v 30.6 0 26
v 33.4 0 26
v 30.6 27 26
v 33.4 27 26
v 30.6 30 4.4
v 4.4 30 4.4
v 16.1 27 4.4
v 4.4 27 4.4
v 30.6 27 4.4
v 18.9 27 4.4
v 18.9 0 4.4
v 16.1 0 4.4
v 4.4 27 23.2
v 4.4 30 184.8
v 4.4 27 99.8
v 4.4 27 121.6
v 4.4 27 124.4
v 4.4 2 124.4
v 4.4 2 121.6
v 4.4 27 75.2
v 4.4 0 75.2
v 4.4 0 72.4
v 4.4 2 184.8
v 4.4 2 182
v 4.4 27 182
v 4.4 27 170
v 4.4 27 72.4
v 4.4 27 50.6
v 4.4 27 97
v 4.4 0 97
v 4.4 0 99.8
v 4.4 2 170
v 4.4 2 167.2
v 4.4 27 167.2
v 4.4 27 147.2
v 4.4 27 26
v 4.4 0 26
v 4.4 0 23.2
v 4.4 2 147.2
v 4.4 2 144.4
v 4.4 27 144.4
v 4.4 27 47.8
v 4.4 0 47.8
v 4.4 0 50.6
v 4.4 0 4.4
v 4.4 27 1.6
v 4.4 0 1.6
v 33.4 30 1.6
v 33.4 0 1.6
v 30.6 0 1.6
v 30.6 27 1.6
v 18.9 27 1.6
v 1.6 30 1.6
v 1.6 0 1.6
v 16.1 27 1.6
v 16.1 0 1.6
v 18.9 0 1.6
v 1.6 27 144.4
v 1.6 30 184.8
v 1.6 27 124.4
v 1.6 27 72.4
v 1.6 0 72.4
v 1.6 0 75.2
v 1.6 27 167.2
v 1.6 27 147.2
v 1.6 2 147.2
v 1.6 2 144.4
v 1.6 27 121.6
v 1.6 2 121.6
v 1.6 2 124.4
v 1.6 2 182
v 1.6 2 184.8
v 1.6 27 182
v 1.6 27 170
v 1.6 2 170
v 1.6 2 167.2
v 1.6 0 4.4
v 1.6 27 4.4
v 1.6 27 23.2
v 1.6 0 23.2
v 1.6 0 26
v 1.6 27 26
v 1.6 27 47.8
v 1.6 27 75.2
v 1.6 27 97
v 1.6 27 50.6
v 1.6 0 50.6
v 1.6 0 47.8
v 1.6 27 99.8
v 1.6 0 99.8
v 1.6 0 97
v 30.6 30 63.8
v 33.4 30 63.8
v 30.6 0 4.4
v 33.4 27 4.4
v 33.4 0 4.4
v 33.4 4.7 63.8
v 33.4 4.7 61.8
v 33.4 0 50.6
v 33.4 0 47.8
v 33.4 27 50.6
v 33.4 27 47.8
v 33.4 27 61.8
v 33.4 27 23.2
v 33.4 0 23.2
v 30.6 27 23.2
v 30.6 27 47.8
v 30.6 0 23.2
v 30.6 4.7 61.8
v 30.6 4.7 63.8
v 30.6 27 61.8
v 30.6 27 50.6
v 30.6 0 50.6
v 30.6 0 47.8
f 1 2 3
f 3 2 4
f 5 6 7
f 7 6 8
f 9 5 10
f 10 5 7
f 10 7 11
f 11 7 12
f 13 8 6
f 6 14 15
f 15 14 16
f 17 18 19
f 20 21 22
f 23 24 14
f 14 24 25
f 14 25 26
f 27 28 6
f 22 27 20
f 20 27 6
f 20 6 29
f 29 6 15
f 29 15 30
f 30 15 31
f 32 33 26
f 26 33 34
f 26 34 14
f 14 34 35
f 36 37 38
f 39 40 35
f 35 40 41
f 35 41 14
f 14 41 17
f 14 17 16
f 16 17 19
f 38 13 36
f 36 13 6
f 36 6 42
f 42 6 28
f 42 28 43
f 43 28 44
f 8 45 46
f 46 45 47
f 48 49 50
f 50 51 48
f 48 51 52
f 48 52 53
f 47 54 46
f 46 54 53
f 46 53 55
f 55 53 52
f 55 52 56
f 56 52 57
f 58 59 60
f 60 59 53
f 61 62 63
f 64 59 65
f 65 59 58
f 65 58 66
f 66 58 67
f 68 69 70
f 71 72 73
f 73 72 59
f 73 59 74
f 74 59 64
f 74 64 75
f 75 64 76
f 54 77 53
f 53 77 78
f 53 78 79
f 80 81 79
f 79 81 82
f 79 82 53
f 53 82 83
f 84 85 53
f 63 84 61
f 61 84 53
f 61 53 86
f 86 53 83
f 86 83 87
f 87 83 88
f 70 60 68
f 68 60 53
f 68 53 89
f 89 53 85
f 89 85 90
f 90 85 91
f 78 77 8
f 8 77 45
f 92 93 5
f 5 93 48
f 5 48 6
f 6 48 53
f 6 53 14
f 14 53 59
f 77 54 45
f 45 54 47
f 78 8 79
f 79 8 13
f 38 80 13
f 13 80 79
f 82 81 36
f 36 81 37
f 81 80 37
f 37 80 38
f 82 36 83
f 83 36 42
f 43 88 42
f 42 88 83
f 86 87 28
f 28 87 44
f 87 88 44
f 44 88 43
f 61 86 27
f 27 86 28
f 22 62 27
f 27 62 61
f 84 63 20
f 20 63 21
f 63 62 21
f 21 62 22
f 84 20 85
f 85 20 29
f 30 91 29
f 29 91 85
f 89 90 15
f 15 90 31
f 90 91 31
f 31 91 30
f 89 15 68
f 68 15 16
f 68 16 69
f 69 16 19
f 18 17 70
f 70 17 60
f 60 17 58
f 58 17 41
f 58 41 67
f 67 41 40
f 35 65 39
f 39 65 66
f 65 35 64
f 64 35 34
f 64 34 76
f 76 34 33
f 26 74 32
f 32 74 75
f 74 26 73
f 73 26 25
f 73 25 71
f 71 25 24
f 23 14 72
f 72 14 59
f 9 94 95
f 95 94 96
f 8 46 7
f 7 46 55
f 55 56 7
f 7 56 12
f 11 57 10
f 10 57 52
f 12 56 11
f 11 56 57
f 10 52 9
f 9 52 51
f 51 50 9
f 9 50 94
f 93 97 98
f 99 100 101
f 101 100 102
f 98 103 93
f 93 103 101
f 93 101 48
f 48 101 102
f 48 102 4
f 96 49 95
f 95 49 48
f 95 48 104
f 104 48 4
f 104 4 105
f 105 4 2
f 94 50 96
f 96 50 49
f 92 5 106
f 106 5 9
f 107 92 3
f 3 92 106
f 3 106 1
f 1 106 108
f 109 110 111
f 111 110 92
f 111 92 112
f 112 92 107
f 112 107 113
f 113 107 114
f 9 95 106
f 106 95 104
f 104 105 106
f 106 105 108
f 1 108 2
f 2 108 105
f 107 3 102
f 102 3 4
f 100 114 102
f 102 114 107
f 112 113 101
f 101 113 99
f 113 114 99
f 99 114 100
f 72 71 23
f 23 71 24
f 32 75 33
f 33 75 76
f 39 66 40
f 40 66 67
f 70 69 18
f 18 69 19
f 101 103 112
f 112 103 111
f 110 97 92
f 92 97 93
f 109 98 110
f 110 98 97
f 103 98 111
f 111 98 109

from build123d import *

# Parameters (mm, degrees)
SKETCH_1_W            = 2.8
SKETCH_1_H            = 2.8
EXTRUDE_1_DEPTH       = 30
EXTRUDE_1_2_DEPTH     = 30
EXTRUDE_1_3_DEPTH     = 30
EXTRUDE_1_4_DEPTH     = 30
EXTRUDE_1_5_DEPTH     = 30
EXTRUDE_1_6_DEPTH     = 30
EXTRUDE_1_7_DEPTH     = 30
EXTRUDE_1_8_DEPTH     = 30
EXTRUDE_1_9_DEPTH     = 30
EXTRUDE_1_10_DEPTH    = 30
EXTRUDE_1_11_DEPTH    = 30
EXTRUDE_1_12_DEPTH    = 30
EXTRUDE_1_13_DEPTH    = 30
EXTRUDE_START         = 27
EXTRUDE_2_OUTLINE_W   = 2.8
EXTRUDE_2_OUTLINE_H   = 18.8
EXTRUDE_2_OUTLINE_W_2 = 11.7
EXTRUDE_2_OUTLINE_H_2 = 2.8
EXTRUDE_2_OUTLINE_H_3 = 21.8
EXTRUDE_2_OUTLINE_H_4 = 20
EXTRUDE_2_OUTLINE_H_5 = 12
EXTRUDE_2_DEPTH       = 3
SKETCH_2_W            = 63.2
SKETCH_2_H            = 2
CUT_EXTRUDE_1_DEPTH   = 190.900710899
SKETCH_3_W            = 11.2
SKETCH_3_H            = 3
EXTRUDE_3_DEPTH       = 2.8


# Read off the part's stored shape, not the designer's step: 凸台-拉伸2
with BuildPart() as part:
    # 草图1 → 凸台-拉伸1 (new body)
    with BuildSketch(Plane(origin=(0, 0, 0), x_dir=(1, 0, 0), z_dir=(0, 1, 0))):
        with Locations((3, -3)):
            Rectangle(SKETCH_1_W, SKETCH_1_H)
    extrude(amount=EXTRUDE_1_DEPTH)



with BuildPart() as body_2:
    # 草图1 → Extrude 1 2 (new body)
    with BuildSketch(Plane(origin=(0, 0, 0), x_dir=(1, 0, 0), z_dir=(0, 1, 0))):
        with Locations((17.5, -3)):
            Rectangle(SKETCH_1_W, SKETCH_1_H)
    extrude(amount=EXTRUDE_1_2_DEPTH)


with BuildPart() as body_3:
    # 草图1 → Extrude 1 3 (new body)
    with BuildSketch(Plane(origin=(0, 0, 0), x_dir=(1, 0, 0), z_dir=(0, 1, 0))):
        with Locations((32, -3)):
            Rectangle(SKETCH_1_W, SKETCH_1_H)
    extrude(amount=EXTRUDE_1_3_DEPTH)


with BuildPart() as body_4:
    # 草图1 → Extrude 1 4 (new body)
    with BuildSketch(Plane(origin=(0, 0, 0), x_dir=(1, 0, 0), z_dir=(0, 1, 0))):
        with Locations((3, -24.6)):
            Rectangle(SKETCH_1_W, SKETCH_1_H)
    extrude(amount=EXTRUDE_1_4_DEPTH)


with BuildPart() as body_5:
    # 草图1 → Extrude 1 5 (new body)
    with BuildSketch(Plane(origin=(0, 0, 0), x_dir=(1, 0, 0), z_dir=(0, 1, 0))):
        with Locations((3, -49.2)):
            Rectangle(SKETCH_1_W, SKETCH_1_H)
    extrude(amount=EXTRUDE_1_5_DEPTH)


with BuildPart() as body_6:
    # 草图1 → Extrude 1 6 (new body)
    with BuildSketch(Plane(origin=(0, 0, 0), x_dir=(1, 0, 0), z_dir=(0, 1, 0))):
        with Locations((3, -73.8)):
            Rectangle(SKETCH_1_W, SKETCH_1_H)
    extrude(amount=EXTRUDE_1_6_DEPTH)


with BuildPart() as body_7:
    # 草图1 → Extrude 1 7 (new body)
    with BuildSketch(Plane(origin=(0, 0, 0), x_dir=(1, 0, 0), z_dir=(0, 1, 0))):
        with Locations((3, -98.4)):
            Rectangle(SKETCH_1_W, SKETCH_1_H)
    extrude(amount=EXTRUDE_1_7_DEPTH)


with BuildPart() as body_8:
    # 草图1 → Extrude 1 8 (new body)
    with BuildSketch(Plane(origin=(0, 0, 0), x_dir=(1, 0, 0), z_dir=(0, 1, 0))):
        with Locations((32, -49.2)):
            Rectangle(SKETCH_1_W, SKETCH_1_H)
    extrude(amount=EXTRUDE_1_8_DEPTH)


with BuildPart() as body_9:
    # 草图1 → Extrude 1 9 (new body)
    with BuildSketch(Plane(origin=(0, 0, 0), x_dir=(1, 0, 0), z_dir=(0, 1, 0))):
        with Locations((32, -24.6)):
            Rectangle(SKETCH_1_W, SKETCH_1_H)
    extrude(amount=EXTRUDE_1_9_DEPTH)


with BuildPart() as body_10:
    # 草图1 → Extrude 1 10 (new body)
    with BuildSketch(Plane(origin=(0, 0, 0), x_dir=(1, 0, 0), z_dir=(0, 1, 0))):
        with Locations((3, -123)):
            Rectangle(SKETCH_1_W, SKETCH_1_H)
    extrude(amount=EXTRUDE_1_10_DEPTH)


with BuildPart() as body_11:
    # 草图1 → Extrude 1 11 (new body)
    with BuildSketch(Plane(origin=(0, 0, 0), x_dir=(1, 0, 0), z_dir=(0, 1, 0))):
        with Locations((3, -145.8)):
            Rectangle(SKETCH_1_W, SKETCH_1_H)
    extrude(amount=EXTRUDE_1_11_DEPTH)


with BuildPart() as body_12:
    # 草图1 → Extrude 1 12 (new body)
    with BuildSketch(Plane(origin=(0, 0, 0), x_dir=(1, 0, 0), z_dir=(0, 1, 0))):
        with Locations((3, -168.6)):
            Rectangle(SKETCH_1_W, SKETCH_1_H)
    extrude(amount=EXTRUDE_1_12_DEPTH)


with BuildPart() as body_13:
    # 草图1 → Extrude 1 13 (new body)
    with BuildSketch(Plane(origin=(0, 0, 0), x_dir=(1, 0, 0), z_dir=(0, 1, 0))):
        with Locations((3, -183.4)):
            Rectangle(SKETCH_1_W, SKETCH_1_H)
    extrude(amount=EXTRUDE_1_13_DEPTH)


with BuildPart() as part_1:
    add(part.part)

    add(body_2.part)  # 凸台-拉伸2 merges body 2

    add(body_3.part)  # 凸台-拉伸2 merges body 3

    add(body_4.part)  # 凸台-拉伸2 merges body 4

    add(body_5.part)  # 凸台-拉伸2 merges body 5

    add(body_6.part)  # 凸台-拉伸2 merges body 6

    add(body_7.part)  # 凸台-拉伸2 merges body 7

    add(body_8.part)  # 凸台-拉伸2 merges body 8

    add(body_9.part)  # 凸台-拉伸2 merges body 9

    add(body_10.part)  # 凸台-拉伸2 merges body 10

    add(body_11.part)  # 凸台-拉伸2 merges body 11

    add(body_12.part)  # 凸台-拉伸2 merges body 12

    add(body_13.part)  # 凸台-拉伸2 merges body 13
    # 凸台-拉伸2 outline → 凸台-拉伸2 (add)
    with BuildSketch(Plane(origin=(0, 0, 0), x_dir=(1, 0, 0), z_dir=(0, 1, 0)).offset(EXTRUDE_START)):
        with Locations((32, -13.8)):
            Rectangle(EXTRUDE_2_OUTLINE_W, EXTRUDE_2_OUTLINE_H)
        with Locations((24.75, -3)):
            Rectangle(EXTRUDE_2_OUTLINE_W_2, EXTRUDE_2_OUTLINE_H_2)
        with Locations((10.25, -3)):
            Rectangle(EXTRUDE_2_OUTLINE_W_2, EXTRUDE_2_OUTLINE_H_2)
        with Locations((32, -36.9)):
            Rectangle(EXTRUDE_2_OUTLINE_W, EXTRUDE_2_OUTLINE_H_3)
        with Locations((3, -13.8)):
            Rectangle(EXTRUDE_2_OUTLINE_W, EXTRUDE_2_OUTLINE_H)
        with Locations((3, -36.9)):
            Rectangle(EXTRUDE_2_OUTLINE_W, EXTRUDE_2_OUTLINE_H_3)
        with Locations((3, -61.5)):
            Rectangle(EXTRUDE_2_OUTLINE_W, EXTRUDE_2_OUTLINE_H_3)
        with Locations((3, -86.1)):
            Rectangle(EXTRUDE_2_OUTLINE_W, EXTRUDE_2_OUTLINE_H_3)
        with Locations((3, -110.7)):
            Rectangle(EXTRUDE_2_OUTLINE_W, EXTRUDE_2_OUTLINE_H_3)
        with Locations((3, -134.4)):
            Rectangle(EXTRUDE_2_OUTLINE_W, EXTRUDE_2_OUTLINE_H_4)
        with Locations((3, -157.2)):
            Rectangle(EXTRUDE_2_OUTLINE_W, EXTRUDE_2_OUTLINE_H_4)
        with Locations((3, -176)):
            Rectangle(EXTRUDE_2_OUTLINE_W, EXTRUDE_2_OUTLINE_H_5)
    extrude(amount=EXTRUDE_2_DEPTH)

    # 草图2 → 切除-拉伸1 (cut, through all)
    with BuildSketch(Plane.ZY.offset(-1.6)):
        with Locations((153.2, 1)):
            Rectangle(SKETCH_2_W, SKETCH_2_H)
    extrude(amount=-CUT_EXTRUDE_1_DEPTH, mode=Mode.SUBTRACT)

    # 草图3 → 凸台-拉伸3 (add)
    with BuildSketch(Plane(origin=(33.4, 0, 0), x_dir=(0, 0, -1), z_dir=(1, 0, 0))):
        Polygon((-63.8, 4.7), (-61.8, 4.7), (-61.8, 27), (-61.8, 30), (-63.8, 30), align=None)
        with Locations((-56.2, 28.5)):
            Rectangle(SKETCH_3_W, SKETCH_3_H)
    extrude(amount=-EXTRUDE_3_DEPTH)


solid = part_1.part
